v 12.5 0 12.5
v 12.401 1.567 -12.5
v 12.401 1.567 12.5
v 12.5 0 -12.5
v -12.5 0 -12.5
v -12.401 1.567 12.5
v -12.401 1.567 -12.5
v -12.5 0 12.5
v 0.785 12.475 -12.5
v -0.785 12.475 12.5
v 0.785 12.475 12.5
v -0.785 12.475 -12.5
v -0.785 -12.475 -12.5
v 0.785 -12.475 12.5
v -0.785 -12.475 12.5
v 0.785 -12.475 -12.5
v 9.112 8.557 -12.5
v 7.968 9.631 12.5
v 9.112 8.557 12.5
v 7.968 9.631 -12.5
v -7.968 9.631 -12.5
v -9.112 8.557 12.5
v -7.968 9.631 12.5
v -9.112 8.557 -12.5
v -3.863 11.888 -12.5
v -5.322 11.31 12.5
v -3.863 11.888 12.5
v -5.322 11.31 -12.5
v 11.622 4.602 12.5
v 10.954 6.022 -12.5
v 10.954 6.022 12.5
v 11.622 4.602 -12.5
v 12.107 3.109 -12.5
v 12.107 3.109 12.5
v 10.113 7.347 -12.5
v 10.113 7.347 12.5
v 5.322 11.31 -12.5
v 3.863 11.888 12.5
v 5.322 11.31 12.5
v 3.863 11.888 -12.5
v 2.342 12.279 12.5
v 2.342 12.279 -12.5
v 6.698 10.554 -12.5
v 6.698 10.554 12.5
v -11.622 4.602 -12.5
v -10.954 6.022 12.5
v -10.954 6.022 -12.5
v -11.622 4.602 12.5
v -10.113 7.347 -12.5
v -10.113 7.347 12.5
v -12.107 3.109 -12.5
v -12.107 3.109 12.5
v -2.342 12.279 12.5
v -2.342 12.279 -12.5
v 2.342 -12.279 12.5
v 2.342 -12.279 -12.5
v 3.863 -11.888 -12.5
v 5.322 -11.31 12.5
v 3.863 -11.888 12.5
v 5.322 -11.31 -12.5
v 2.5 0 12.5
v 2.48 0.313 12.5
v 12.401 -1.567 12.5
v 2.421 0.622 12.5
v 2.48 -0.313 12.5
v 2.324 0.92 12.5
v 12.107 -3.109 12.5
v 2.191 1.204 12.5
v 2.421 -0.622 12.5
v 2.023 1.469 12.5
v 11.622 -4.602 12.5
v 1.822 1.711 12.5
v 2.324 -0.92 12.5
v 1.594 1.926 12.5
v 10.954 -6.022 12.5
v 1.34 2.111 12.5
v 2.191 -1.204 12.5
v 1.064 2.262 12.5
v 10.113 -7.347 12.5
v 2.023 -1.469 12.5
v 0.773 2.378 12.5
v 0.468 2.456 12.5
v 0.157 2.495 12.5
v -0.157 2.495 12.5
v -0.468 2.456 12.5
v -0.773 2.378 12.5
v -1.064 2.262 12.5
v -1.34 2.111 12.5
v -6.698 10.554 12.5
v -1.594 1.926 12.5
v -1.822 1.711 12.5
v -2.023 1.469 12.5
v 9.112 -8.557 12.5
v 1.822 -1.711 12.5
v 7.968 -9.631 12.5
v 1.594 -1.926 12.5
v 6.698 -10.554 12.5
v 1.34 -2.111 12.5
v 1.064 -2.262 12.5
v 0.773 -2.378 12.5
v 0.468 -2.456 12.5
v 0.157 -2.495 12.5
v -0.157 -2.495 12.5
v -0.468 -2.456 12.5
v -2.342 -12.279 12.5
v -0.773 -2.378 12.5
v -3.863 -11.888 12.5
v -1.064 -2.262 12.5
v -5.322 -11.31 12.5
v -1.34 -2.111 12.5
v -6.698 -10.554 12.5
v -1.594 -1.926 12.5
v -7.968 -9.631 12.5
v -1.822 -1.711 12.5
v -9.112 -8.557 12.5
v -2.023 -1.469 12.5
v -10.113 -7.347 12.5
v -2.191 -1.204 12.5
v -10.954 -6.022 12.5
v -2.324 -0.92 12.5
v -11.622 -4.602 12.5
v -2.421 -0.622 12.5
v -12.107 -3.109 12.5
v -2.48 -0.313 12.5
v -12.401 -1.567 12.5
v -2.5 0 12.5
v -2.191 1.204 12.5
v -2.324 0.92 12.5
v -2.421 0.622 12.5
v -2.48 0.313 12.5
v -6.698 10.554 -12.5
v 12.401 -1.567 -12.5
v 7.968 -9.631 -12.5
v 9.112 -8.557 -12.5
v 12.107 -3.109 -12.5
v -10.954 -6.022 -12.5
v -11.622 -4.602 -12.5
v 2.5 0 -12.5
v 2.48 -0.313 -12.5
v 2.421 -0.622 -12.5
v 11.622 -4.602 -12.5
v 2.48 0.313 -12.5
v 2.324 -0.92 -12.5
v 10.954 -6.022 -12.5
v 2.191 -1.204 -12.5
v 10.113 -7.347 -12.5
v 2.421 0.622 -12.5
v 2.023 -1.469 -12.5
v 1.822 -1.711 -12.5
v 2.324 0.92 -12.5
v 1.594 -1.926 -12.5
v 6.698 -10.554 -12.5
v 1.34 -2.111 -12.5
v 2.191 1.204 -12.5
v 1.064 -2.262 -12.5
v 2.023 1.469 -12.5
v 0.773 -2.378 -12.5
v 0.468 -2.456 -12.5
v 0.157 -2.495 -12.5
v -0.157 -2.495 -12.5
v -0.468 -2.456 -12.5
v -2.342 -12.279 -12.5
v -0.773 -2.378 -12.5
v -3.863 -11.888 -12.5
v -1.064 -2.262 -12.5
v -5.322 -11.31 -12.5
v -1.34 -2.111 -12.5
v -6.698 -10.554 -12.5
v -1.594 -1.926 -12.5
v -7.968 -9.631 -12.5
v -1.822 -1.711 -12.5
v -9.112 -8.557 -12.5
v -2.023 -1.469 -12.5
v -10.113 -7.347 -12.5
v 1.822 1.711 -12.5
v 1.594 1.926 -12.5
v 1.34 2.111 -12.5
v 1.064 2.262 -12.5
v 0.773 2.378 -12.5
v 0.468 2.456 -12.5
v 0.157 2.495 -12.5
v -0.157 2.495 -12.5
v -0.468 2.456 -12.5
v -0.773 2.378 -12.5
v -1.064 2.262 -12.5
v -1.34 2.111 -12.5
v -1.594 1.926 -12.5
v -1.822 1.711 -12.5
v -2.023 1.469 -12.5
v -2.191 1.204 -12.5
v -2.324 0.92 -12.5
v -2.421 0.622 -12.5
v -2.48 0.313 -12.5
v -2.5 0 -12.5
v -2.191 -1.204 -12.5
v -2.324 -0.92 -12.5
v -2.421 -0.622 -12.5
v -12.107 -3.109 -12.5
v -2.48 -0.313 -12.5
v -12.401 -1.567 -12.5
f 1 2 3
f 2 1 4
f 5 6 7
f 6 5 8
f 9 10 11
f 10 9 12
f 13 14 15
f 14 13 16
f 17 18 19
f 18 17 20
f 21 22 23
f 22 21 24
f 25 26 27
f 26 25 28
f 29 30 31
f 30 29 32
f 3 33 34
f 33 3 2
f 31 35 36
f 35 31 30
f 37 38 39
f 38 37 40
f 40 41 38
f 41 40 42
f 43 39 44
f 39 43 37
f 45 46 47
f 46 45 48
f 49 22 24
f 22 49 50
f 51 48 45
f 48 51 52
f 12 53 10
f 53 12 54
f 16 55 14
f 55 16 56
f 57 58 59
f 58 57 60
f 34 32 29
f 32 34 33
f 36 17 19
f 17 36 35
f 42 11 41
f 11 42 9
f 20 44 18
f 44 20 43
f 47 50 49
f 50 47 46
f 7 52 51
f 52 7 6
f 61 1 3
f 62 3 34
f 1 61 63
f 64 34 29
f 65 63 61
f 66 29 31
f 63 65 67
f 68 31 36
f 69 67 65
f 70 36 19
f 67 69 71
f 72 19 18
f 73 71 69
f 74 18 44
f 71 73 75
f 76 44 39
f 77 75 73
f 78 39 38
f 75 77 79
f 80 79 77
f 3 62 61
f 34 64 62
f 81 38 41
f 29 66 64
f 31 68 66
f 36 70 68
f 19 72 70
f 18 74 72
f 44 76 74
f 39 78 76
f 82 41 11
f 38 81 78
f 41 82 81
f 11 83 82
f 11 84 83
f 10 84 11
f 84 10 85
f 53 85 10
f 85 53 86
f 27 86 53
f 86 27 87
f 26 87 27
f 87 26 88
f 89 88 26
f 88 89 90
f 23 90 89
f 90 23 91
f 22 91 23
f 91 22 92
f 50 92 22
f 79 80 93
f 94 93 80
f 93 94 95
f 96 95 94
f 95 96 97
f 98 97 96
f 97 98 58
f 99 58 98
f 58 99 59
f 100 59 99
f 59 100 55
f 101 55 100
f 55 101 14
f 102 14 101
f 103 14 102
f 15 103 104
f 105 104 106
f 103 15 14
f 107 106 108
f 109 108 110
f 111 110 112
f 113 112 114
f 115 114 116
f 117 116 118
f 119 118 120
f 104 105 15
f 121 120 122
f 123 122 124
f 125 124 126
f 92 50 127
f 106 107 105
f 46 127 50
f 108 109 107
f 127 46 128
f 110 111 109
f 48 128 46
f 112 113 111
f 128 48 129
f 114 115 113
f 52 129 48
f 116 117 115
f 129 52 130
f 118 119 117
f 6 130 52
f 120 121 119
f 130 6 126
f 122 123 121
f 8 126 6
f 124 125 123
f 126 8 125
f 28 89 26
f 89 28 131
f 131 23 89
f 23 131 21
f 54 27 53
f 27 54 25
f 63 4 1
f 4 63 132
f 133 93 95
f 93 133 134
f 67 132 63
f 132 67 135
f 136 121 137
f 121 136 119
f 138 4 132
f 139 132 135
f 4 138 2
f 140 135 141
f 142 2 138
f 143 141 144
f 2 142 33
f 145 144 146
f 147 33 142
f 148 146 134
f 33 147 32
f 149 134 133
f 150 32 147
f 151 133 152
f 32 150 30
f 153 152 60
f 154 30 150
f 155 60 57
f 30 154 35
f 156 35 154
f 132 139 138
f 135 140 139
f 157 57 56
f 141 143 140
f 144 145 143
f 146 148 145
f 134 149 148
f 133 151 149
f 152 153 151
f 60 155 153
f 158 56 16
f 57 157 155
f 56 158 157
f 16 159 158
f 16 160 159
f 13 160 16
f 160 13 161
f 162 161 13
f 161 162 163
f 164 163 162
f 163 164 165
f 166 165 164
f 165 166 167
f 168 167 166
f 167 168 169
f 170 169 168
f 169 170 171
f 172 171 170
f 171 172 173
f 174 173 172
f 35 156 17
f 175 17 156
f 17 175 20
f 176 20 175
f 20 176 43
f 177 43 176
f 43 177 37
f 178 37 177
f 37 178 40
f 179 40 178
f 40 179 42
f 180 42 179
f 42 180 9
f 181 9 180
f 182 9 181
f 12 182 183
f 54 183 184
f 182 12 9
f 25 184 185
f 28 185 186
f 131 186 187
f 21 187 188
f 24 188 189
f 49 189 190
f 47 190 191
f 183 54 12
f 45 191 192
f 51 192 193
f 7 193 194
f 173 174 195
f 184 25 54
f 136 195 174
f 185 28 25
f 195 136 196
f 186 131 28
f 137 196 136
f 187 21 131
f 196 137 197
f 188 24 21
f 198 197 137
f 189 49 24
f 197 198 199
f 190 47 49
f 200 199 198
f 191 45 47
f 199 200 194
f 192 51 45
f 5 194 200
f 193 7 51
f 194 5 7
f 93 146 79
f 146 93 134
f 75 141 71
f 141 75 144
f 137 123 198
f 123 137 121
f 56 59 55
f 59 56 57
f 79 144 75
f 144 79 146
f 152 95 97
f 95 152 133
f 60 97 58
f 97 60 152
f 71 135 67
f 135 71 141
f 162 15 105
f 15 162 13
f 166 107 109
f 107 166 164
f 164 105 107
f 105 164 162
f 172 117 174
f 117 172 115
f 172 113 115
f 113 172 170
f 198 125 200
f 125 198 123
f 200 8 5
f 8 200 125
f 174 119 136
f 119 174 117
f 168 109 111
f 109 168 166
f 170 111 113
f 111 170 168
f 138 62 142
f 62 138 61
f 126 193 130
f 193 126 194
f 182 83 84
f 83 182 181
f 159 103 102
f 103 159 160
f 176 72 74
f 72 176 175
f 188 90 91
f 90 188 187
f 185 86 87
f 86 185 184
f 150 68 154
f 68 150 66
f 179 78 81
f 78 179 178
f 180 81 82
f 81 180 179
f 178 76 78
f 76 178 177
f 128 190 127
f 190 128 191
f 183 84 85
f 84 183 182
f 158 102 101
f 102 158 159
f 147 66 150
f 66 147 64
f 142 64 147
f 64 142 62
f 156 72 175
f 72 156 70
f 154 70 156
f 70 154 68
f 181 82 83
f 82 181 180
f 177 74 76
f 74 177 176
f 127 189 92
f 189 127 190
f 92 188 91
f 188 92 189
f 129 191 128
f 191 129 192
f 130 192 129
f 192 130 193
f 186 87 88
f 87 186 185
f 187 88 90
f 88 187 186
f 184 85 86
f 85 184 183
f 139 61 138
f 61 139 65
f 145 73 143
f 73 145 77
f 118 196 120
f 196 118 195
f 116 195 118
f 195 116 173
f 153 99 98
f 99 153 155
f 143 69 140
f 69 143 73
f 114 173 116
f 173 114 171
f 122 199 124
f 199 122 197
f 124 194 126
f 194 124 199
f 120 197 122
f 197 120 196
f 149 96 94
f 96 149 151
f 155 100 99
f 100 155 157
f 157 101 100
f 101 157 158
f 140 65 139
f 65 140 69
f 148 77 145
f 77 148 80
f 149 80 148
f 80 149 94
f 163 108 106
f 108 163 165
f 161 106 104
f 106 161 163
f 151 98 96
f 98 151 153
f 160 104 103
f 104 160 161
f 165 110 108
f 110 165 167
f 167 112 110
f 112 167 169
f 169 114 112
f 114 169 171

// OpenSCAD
$fn = 50;


difference() {
	union() {
		translate(v = [0, 0, -12.5000000000]) {
			cylinder(h = 25, r = 12.5000000000);
		}
	}
	union() {
		translate(v = [0, 0, -100.0000000000]) {
			cylinder(h = 200, r = 2.5000000000);
		}
	}
}
